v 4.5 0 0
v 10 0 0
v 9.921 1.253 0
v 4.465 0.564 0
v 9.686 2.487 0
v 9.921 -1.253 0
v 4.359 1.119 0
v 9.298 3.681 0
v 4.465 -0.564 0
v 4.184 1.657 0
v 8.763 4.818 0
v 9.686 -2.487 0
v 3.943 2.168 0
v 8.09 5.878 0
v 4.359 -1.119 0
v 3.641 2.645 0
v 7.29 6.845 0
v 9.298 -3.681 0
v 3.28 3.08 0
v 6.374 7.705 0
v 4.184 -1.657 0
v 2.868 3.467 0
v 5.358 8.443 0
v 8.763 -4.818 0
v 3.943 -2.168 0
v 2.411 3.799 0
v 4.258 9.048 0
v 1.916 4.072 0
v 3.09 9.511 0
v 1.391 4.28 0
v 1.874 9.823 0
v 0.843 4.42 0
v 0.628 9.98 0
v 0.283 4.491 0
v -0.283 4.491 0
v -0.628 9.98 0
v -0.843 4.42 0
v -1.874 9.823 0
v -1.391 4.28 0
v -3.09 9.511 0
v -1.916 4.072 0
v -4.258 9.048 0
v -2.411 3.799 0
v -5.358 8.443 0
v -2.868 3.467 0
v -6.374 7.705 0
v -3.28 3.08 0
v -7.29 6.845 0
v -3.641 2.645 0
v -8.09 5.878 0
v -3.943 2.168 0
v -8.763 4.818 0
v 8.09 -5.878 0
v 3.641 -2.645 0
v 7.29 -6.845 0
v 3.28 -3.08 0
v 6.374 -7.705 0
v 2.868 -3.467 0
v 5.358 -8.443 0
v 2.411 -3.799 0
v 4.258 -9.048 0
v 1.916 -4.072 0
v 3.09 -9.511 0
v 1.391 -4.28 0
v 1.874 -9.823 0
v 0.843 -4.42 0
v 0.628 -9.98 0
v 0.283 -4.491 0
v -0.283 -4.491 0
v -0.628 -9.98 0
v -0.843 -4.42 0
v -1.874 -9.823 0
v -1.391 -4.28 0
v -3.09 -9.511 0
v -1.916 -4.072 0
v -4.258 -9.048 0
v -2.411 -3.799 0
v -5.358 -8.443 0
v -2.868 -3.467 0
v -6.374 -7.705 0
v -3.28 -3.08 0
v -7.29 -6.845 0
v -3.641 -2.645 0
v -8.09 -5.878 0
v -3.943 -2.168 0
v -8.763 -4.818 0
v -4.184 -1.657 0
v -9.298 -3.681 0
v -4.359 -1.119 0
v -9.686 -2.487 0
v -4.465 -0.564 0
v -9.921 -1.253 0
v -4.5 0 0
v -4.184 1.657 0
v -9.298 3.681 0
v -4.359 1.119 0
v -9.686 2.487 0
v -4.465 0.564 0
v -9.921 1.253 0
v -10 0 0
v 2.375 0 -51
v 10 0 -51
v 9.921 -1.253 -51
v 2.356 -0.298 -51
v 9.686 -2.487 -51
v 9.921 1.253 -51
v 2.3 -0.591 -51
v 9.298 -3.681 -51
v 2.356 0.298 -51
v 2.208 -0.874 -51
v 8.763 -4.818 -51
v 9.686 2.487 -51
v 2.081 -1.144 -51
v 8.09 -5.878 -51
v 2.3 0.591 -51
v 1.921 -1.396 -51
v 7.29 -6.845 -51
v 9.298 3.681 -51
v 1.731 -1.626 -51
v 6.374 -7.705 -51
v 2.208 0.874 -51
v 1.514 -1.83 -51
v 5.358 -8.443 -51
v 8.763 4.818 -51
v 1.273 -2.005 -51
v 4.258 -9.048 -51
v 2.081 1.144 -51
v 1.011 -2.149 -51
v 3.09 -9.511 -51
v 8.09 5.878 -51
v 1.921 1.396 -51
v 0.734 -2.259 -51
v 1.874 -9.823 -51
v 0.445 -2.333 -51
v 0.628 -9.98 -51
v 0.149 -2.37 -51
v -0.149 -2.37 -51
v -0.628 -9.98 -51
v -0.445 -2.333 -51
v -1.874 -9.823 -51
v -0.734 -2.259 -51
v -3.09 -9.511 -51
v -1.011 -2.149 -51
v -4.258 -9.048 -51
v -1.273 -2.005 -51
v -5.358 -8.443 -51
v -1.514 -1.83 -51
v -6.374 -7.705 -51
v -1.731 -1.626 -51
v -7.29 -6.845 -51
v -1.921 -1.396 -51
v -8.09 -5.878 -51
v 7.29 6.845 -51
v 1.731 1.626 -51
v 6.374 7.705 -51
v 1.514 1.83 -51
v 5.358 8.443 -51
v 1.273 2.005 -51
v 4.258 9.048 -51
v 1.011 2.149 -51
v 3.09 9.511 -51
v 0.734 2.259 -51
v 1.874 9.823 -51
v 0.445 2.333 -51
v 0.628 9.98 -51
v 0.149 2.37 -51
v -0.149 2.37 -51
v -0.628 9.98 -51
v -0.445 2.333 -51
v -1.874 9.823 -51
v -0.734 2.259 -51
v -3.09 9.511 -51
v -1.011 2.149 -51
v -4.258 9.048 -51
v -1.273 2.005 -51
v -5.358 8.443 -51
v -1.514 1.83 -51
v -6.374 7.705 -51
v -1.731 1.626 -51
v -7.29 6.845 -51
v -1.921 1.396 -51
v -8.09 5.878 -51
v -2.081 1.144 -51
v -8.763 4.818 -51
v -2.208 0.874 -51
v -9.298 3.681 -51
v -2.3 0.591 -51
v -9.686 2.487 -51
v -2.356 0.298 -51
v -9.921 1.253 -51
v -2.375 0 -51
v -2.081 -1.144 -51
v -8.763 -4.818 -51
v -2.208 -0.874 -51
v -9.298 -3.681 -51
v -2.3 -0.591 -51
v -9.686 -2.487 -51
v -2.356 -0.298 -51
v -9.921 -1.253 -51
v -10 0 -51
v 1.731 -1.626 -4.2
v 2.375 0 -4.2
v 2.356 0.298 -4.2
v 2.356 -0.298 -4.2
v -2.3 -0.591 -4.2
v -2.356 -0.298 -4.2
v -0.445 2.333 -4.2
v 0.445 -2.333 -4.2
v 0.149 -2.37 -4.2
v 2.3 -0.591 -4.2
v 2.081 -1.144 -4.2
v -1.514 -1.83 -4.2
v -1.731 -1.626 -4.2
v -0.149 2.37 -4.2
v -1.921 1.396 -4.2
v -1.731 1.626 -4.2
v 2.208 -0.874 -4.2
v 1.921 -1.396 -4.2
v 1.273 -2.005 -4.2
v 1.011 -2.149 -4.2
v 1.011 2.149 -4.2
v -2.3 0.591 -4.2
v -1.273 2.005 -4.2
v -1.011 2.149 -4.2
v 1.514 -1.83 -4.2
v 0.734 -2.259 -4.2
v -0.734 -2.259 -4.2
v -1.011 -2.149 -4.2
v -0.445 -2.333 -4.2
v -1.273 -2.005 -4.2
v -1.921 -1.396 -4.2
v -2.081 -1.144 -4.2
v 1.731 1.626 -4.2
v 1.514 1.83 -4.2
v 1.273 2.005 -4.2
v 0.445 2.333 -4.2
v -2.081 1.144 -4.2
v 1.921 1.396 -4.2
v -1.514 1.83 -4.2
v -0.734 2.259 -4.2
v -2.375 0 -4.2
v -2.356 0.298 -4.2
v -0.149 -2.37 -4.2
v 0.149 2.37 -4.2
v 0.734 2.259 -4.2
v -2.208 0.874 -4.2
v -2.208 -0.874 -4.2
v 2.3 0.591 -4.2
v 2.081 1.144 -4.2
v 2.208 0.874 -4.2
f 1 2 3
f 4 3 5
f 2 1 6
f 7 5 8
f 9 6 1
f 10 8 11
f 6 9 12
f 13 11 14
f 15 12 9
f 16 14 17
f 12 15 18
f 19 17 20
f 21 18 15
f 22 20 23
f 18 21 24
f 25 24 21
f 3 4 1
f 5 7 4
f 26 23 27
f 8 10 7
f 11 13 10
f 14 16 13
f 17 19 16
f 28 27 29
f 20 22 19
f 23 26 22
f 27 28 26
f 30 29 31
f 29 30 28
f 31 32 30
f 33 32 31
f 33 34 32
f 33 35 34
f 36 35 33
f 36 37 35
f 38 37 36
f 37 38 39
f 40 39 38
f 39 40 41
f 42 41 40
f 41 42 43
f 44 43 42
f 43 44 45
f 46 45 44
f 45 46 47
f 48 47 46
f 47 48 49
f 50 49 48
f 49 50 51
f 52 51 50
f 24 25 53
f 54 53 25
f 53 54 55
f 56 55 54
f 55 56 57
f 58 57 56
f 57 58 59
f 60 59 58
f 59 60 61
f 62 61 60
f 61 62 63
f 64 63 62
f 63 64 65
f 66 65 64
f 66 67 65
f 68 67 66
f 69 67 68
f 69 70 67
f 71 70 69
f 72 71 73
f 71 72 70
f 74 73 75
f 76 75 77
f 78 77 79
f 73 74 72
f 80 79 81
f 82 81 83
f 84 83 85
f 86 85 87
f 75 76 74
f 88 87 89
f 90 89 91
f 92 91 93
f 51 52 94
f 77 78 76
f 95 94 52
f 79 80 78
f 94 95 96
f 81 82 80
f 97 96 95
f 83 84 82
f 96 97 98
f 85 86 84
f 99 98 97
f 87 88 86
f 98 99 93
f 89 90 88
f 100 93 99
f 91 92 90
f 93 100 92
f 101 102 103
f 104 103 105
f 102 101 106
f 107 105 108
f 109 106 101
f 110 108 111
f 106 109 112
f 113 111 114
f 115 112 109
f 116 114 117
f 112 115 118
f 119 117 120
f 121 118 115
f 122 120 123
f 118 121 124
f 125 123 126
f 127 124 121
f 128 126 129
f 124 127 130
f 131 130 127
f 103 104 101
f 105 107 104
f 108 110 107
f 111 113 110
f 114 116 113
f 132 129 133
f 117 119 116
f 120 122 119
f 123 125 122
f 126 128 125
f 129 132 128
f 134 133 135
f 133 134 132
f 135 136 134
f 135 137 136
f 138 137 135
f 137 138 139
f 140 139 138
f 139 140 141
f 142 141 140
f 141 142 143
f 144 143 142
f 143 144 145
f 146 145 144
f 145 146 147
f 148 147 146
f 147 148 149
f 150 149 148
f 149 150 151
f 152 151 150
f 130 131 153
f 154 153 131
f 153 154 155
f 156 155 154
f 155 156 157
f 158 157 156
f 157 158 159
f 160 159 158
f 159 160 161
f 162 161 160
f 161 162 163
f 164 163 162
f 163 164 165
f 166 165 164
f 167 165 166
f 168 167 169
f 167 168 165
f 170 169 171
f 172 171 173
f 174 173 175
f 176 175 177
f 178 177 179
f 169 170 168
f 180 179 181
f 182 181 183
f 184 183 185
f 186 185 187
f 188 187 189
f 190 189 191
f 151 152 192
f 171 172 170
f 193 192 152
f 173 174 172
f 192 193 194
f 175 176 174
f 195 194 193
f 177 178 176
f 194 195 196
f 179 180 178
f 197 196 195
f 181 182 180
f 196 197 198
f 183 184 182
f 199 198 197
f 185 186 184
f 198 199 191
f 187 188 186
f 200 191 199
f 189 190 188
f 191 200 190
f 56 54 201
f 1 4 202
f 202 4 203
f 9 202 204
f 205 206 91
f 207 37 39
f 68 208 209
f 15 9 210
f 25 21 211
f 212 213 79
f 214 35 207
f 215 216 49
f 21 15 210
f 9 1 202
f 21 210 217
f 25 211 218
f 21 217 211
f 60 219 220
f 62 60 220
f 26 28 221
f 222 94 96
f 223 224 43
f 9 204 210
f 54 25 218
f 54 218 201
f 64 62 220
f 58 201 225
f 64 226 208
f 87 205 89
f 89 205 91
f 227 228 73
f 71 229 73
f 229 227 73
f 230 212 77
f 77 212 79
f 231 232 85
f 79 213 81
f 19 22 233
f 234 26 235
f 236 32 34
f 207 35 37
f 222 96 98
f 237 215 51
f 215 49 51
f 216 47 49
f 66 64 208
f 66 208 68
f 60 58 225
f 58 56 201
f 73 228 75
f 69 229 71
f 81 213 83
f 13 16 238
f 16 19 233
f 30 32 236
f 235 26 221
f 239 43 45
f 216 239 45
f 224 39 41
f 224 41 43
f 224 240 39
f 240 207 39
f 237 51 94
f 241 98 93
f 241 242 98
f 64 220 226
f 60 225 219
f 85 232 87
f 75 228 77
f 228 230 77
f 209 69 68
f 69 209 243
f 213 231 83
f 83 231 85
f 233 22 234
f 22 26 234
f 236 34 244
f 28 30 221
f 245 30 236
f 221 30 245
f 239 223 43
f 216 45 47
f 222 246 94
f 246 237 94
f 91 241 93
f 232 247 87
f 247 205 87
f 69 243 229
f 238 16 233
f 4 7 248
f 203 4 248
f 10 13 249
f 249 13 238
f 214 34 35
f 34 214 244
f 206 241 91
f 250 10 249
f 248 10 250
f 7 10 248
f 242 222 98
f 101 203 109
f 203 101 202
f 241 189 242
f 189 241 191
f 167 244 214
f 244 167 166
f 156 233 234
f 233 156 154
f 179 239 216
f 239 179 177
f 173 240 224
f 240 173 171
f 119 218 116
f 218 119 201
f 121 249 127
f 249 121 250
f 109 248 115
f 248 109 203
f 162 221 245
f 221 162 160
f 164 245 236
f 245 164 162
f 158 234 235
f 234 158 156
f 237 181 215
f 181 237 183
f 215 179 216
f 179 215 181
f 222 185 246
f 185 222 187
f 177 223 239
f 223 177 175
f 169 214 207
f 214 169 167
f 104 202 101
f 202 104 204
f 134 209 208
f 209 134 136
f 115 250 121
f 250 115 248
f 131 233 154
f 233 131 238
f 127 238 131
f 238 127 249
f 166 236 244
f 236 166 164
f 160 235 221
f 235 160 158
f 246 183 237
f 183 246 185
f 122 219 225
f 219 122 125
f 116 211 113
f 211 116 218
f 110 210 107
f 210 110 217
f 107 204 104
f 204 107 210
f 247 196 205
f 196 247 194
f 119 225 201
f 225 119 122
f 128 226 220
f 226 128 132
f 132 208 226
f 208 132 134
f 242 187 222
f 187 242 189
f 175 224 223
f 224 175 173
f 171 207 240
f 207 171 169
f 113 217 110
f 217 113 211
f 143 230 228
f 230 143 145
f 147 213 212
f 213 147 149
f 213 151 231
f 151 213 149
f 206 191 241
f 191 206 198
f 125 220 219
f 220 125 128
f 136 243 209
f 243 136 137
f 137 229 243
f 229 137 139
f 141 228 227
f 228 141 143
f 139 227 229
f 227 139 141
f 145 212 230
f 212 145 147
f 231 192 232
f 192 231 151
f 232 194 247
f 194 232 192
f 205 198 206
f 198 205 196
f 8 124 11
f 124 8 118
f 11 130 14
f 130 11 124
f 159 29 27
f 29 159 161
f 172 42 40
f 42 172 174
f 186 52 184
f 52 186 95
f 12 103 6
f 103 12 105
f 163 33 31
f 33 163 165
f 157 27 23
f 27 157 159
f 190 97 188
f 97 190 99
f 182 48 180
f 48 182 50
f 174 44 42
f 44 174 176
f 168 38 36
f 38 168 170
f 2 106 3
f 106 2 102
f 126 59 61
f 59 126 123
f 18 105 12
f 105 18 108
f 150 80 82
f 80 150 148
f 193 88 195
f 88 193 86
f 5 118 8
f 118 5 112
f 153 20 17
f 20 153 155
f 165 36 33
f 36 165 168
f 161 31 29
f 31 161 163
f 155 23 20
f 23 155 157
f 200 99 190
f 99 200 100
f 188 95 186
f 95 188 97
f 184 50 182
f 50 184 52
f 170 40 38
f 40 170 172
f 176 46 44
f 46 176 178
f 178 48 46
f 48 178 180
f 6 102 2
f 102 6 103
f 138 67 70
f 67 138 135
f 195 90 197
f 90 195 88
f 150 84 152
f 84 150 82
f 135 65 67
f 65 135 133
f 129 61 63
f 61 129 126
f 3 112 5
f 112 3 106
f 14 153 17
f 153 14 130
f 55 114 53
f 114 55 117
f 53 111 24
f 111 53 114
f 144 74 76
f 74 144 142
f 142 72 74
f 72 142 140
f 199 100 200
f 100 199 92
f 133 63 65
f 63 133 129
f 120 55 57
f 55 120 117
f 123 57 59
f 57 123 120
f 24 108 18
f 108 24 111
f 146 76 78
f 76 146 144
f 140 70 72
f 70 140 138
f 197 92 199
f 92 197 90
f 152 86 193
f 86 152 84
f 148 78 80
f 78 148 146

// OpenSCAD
$fn = 50;


difference() {
	union() {
		translate(v = [0, 0, -51.0000000000]) {
			cylinder(h = 51, r = 10.0000000000);
		}
		cylinder(h = 0, r = 16.0000000000);
	}
	union() {
		translate(v = [0, 0, 0]) {
			rotate(a = [0, 0, 0]) {
				difference() {
					union() {
						#translate(v = [0, 0, -51.0000000000]) {
							cylinder(h = 51, r = 2.2500000000);
						}
						#translate(v = [0, 0, -4.2000000000]) {
							cylinder(h = 4.2000000000, r1 = 2.3750000000, r2 = 4.5000000000);
						}
						#translate(v = [0, 0, -51.0000000000]) {
							cylinder(h = 51, r = 2.3750000000);
						}
						#translate(v = [0, 0, -51.0000000000]) {
							cylinder(h = 51, r = 2.2500000000);
						}
					}
					union();
				}
			}
		}
	}
}
